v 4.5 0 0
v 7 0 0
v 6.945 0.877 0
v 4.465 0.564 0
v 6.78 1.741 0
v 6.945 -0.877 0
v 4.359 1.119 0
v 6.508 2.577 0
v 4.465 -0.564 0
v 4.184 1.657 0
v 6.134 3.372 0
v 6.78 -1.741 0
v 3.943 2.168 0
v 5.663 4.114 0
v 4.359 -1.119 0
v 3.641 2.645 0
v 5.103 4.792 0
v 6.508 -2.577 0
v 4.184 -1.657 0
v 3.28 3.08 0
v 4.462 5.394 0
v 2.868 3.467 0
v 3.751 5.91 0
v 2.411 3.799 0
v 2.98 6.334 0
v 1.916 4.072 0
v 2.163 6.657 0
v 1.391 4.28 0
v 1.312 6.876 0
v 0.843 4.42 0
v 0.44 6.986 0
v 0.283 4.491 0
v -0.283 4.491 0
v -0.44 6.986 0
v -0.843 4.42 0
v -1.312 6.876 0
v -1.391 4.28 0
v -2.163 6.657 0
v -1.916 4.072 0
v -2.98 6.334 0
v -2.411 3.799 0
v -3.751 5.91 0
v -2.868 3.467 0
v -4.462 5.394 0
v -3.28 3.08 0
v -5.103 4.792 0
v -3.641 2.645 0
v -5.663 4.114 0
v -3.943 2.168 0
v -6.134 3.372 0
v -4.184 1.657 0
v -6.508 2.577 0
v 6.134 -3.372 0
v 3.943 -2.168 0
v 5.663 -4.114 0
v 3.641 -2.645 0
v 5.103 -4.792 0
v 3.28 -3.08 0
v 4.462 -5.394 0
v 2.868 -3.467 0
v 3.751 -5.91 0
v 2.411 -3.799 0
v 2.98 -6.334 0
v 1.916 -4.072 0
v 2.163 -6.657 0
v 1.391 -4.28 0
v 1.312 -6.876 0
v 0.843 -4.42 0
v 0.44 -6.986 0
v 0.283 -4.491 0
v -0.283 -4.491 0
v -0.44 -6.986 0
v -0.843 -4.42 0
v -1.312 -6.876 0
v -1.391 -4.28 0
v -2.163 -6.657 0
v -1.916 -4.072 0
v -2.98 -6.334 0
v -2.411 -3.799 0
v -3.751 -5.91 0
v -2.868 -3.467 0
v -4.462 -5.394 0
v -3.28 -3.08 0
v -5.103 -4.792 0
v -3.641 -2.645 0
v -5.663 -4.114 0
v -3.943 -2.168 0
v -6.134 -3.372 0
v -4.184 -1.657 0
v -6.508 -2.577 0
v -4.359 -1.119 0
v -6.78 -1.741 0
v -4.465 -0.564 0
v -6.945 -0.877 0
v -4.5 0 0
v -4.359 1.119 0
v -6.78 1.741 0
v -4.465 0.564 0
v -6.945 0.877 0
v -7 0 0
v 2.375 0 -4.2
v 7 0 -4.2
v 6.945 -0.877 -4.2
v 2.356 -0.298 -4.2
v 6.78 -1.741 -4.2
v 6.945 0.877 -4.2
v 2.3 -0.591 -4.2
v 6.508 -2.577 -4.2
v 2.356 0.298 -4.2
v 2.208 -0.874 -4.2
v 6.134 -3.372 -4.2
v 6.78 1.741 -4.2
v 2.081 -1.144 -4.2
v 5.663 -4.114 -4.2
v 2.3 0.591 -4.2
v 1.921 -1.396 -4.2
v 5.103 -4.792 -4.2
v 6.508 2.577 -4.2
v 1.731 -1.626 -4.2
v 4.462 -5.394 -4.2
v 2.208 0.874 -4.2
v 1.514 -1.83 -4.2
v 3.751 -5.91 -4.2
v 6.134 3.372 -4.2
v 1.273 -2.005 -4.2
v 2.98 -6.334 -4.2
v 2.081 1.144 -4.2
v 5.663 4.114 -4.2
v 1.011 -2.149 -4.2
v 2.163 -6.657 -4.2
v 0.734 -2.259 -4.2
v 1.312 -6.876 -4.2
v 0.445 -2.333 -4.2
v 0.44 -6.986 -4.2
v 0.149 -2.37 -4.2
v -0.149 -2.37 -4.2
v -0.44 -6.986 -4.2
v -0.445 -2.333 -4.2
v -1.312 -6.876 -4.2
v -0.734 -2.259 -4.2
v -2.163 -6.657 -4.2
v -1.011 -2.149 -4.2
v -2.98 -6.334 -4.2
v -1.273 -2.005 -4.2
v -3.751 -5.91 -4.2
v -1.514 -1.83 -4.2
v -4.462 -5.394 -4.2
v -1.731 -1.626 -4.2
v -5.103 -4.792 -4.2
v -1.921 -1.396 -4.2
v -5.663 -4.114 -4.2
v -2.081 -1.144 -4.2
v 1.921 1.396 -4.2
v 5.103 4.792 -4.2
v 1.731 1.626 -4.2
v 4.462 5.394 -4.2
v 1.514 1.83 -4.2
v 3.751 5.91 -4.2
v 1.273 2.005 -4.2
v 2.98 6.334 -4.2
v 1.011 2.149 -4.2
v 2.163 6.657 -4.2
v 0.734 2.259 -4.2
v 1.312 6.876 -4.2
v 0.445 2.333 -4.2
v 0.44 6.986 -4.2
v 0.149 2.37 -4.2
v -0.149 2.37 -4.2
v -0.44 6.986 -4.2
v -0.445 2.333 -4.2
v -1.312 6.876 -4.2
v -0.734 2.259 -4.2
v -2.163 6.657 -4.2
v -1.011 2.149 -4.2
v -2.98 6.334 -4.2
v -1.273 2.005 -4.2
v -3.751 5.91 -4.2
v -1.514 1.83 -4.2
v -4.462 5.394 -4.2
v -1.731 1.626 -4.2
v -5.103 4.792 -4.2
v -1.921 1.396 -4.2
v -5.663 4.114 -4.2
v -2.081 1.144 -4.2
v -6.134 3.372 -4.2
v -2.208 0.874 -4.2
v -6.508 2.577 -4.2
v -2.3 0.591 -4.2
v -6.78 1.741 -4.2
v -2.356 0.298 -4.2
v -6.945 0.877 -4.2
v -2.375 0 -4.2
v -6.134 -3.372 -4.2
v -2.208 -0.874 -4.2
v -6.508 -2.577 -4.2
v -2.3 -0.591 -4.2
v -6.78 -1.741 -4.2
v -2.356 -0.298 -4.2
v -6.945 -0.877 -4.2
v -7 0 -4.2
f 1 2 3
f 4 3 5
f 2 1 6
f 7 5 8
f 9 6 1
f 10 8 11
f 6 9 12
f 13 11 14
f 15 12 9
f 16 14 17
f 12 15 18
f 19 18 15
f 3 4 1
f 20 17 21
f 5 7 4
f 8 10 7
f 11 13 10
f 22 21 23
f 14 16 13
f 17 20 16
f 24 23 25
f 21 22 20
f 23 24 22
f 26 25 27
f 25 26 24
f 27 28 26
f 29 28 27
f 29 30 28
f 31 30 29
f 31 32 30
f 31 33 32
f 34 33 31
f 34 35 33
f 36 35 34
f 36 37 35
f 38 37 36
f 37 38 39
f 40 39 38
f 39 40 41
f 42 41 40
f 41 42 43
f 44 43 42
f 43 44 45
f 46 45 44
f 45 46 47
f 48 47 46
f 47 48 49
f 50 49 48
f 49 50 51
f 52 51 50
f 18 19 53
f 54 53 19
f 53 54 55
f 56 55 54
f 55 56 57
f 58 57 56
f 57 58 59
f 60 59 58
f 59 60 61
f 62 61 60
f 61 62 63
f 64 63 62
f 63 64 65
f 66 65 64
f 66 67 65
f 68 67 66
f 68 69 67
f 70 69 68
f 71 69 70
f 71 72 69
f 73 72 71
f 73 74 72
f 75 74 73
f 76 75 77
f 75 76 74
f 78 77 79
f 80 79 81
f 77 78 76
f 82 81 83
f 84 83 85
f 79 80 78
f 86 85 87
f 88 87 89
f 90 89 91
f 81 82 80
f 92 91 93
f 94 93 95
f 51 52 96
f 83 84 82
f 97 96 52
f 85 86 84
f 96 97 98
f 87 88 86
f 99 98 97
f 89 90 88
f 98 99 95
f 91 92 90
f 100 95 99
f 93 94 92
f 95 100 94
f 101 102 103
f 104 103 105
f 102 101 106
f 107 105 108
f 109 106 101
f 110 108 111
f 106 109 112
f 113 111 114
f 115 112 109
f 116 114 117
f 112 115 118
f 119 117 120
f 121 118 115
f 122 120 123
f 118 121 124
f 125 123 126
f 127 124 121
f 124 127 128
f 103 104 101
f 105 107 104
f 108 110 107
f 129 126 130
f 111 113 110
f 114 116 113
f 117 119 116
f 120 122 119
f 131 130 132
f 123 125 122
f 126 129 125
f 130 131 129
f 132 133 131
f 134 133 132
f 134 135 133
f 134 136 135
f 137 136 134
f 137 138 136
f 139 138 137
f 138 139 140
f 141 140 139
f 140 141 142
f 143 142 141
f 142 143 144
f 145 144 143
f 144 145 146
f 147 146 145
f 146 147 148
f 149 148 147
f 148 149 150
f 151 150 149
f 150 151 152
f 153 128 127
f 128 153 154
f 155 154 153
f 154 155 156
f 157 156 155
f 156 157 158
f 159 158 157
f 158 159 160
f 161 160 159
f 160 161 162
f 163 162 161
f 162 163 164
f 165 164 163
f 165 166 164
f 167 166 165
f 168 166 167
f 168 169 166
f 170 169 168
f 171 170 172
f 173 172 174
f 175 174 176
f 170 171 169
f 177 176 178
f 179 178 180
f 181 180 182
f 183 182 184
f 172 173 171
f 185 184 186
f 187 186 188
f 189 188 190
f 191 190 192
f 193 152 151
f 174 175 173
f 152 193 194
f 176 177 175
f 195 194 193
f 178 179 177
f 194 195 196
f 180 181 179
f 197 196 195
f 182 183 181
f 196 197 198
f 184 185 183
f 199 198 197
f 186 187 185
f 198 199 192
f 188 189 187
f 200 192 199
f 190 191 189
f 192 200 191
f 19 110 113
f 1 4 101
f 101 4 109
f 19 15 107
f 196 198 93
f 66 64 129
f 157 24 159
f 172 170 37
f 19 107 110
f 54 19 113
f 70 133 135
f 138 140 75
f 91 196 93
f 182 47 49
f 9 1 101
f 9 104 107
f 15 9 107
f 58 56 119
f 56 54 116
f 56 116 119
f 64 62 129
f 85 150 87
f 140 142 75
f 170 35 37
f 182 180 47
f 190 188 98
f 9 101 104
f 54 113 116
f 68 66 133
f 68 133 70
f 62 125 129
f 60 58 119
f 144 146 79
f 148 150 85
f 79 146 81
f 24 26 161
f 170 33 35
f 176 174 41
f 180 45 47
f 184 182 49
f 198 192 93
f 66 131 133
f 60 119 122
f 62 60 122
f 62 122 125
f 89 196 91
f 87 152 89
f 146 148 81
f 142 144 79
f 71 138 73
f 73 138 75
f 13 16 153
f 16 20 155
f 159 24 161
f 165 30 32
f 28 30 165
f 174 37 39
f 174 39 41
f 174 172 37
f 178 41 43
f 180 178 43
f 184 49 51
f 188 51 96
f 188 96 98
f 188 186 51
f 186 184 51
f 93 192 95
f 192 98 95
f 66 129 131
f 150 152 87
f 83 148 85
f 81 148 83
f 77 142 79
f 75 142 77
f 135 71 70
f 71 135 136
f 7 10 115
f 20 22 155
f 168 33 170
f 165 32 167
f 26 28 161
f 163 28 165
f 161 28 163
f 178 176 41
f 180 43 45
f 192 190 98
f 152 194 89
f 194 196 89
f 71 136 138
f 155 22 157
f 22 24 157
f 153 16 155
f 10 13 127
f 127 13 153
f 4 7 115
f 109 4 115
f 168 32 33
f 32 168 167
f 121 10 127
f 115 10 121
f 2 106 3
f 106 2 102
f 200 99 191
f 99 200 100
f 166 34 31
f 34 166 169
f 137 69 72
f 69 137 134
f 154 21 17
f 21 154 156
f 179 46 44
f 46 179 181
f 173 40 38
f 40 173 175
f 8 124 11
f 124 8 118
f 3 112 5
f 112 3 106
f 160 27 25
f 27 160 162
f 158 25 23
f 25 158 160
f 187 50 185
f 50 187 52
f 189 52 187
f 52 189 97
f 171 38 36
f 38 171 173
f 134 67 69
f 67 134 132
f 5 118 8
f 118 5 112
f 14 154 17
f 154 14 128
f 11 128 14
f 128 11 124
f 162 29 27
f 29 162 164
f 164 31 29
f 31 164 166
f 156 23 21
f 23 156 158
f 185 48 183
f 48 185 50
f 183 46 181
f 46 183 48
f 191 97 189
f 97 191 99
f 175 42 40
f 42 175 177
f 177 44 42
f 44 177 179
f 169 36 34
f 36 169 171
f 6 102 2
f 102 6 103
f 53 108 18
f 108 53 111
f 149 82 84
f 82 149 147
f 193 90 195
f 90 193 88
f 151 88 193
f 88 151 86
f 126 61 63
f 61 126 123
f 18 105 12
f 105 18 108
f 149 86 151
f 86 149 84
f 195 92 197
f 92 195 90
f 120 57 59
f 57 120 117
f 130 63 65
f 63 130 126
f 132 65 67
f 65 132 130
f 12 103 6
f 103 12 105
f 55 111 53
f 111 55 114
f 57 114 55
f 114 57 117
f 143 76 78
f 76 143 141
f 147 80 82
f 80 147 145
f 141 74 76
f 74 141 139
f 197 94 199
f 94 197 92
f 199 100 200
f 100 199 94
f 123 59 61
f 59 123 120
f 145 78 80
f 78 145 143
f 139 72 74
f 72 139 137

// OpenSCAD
$fn = 50;


difference() {
	union() {
		translate(v = [0, 0, -4.2000000000]) {
			cylinder(h = 4.2000000000, r = 7.0000000000);
		}
	}
	union() {
		translate(v = [0, 0, 0]) {
			rotate(a = [0, 0, 0]) {
				difference() {
					union() {
						#translate(v = [0, 0, -4.2000000000]) {
							cylinder(h = 4.2000000000, r = 2.2500000000);
						}
						#translate(v = [0, 0, -4.2000000000]) {
							cylinder(h = 4.2000000000, r1 = 2.3750000000, r2 = 4.5000000000);
						}
						#translate(v = [0, 0, -4.2000000000]) {
							cylinder(h = 4.2000000000, r = 2.3750000000);
						}
						#translate(v = [0, 0, -4.2000000000]) {
							cylinder(h = 4.2000000000, r = 2.2500000000);
						}
					}
					union();
				}
			}
		}
	}
}
